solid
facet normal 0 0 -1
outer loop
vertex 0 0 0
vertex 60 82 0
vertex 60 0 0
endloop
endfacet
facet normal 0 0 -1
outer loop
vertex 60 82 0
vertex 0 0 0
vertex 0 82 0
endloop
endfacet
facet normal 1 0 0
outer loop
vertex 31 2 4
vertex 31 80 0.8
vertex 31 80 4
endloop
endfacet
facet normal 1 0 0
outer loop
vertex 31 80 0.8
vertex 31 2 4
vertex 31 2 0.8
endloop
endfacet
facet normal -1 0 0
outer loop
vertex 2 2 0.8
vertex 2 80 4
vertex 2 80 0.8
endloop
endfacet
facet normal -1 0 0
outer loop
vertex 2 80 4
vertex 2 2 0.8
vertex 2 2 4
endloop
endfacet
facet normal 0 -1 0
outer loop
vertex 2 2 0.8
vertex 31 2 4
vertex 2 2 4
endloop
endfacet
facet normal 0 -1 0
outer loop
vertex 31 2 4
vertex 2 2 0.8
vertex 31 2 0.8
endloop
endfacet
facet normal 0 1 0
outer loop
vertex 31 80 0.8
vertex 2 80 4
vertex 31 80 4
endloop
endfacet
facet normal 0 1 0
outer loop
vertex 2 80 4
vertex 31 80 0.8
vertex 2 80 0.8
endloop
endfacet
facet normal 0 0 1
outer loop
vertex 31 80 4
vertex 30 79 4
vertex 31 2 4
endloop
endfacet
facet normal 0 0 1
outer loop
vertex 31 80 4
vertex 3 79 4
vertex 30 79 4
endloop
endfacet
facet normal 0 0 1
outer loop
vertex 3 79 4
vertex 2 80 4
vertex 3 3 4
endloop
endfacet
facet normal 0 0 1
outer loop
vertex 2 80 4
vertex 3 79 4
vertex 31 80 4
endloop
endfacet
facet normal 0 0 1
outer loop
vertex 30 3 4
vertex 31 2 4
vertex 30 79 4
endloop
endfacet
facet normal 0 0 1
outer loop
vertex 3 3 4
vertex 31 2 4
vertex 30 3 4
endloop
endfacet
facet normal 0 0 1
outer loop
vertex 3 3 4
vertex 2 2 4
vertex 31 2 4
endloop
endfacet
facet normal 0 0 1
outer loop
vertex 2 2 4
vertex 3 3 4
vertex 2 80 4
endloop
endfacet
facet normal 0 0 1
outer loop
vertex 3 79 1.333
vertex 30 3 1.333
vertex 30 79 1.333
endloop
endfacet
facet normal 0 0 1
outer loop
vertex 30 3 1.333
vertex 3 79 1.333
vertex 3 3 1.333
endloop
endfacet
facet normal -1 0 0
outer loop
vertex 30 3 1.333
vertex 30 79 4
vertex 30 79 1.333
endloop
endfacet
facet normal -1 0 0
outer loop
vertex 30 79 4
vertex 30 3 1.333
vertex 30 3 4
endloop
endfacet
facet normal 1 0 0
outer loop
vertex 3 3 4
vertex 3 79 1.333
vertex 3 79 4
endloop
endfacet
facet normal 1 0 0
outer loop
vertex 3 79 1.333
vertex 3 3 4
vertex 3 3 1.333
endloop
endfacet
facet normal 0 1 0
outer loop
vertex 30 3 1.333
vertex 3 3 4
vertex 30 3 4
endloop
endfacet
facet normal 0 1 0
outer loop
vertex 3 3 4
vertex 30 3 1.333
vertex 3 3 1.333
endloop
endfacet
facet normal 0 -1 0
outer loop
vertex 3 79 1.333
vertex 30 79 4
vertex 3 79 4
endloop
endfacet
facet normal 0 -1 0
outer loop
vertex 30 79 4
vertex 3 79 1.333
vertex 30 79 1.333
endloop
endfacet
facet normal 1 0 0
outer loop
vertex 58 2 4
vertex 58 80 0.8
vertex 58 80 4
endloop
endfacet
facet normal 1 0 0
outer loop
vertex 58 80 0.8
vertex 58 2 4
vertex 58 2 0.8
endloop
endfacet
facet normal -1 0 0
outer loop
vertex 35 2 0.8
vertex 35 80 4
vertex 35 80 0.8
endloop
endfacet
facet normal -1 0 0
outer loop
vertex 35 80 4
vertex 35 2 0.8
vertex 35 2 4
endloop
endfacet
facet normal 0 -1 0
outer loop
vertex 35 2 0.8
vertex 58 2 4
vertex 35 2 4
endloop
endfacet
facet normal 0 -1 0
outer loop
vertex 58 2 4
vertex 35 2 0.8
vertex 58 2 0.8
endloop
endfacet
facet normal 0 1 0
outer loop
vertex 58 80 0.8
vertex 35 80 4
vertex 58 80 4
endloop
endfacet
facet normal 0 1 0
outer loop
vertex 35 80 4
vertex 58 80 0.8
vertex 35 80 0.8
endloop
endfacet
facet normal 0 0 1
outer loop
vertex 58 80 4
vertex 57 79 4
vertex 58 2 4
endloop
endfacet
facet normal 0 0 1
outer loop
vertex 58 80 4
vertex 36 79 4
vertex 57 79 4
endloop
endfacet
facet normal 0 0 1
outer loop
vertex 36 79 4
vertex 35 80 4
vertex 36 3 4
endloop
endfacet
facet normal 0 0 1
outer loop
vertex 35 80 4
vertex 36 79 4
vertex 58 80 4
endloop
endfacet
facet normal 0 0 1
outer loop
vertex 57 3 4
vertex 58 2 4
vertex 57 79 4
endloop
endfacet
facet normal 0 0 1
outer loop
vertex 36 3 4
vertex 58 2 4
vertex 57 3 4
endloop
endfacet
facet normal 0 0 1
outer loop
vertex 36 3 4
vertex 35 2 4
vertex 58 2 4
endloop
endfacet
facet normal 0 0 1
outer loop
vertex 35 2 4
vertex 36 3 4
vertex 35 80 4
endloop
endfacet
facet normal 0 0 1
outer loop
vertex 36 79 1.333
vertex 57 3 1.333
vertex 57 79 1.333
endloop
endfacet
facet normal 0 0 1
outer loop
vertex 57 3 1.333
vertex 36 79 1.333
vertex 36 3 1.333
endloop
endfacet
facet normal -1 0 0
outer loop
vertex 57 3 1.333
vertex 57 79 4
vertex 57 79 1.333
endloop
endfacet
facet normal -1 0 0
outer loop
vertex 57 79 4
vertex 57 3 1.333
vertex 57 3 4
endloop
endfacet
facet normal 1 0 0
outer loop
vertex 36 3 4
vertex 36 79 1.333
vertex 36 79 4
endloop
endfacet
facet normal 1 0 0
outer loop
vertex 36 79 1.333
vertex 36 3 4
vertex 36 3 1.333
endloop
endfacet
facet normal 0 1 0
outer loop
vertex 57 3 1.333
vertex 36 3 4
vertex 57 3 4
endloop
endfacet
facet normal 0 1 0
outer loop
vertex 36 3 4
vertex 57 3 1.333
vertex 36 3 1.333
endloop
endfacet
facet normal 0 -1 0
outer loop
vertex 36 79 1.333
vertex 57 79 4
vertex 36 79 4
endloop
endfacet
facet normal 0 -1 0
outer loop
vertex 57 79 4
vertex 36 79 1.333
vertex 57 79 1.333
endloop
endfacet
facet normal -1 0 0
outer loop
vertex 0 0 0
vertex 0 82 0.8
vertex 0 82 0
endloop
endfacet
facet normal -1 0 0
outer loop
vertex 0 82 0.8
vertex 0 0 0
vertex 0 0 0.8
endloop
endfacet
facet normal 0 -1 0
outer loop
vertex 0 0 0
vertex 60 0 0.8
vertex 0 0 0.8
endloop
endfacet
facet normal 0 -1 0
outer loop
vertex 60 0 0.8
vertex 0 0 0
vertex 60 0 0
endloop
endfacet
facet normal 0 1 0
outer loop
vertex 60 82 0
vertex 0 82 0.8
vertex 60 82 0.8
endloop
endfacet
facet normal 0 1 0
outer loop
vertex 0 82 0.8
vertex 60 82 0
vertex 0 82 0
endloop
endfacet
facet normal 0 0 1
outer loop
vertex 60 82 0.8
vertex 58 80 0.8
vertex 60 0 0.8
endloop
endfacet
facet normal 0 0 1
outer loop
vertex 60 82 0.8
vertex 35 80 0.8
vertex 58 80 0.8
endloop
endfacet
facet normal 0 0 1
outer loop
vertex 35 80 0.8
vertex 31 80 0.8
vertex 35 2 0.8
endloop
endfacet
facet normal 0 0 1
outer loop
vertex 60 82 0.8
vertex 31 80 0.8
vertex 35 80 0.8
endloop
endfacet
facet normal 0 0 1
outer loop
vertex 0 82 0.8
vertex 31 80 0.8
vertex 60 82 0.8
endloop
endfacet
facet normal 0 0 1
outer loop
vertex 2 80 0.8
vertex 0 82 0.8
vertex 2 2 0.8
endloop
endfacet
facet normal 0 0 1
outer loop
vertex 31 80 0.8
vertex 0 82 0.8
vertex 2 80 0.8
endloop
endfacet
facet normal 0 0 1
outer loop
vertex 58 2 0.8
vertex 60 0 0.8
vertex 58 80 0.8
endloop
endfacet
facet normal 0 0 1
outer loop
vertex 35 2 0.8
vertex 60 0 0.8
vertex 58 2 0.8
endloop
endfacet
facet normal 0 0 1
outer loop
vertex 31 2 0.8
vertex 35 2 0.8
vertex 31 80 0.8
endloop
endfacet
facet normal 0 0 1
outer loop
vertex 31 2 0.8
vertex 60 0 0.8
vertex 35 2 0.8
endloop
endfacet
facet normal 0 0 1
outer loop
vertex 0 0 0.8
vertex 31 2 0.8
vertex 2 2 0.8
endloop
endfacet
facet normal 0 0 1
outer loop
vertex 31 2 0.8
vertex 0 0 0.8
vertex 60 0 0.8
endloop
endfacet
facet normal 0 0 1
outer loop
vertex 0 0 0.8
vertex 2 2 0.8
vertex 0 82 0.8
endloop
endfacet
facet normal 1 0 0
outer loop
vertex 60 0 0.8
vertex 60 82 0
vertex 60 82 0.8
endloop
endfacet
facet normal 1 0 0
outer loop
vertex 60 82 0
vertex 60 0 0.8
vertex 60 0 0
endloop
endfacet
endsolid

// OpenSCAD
pcb_w = 27;
pcb_h = 76;
battery_w = 21;
battery_h = 76;
thick = 1;
thick2 = 2;
height = 2;
pad = 4;

render() union() {
color("red") linear_extrude(height=0.8*thick) square([pcb_w+pad+2*thick,pcb_h+pad+2*thick], center=false);
color("yellow") translate([pcb_w+pad+2*thick, 0]) linear_extrude(height=0.8*thick) square([battery_w+pad+2*thick,battery_h+pad+2*thick], center=false);

render() difference() {
color("magenta") translate([pad/2,pad/2,0]) linear_extrude(height=4*thick) square([pcb_w+2*thick,pcb_h+2*thick], center=false);
color("yellow") translate([(pad/2)+thick,(pad/2)+thick,height/1.5]) linear_extrude(height=4*thick) square([pcb_w,pcb_h], center=false);
}
render() difference() {
color("green") translate([pcb_w+pad+4*thick,pad/2,0]) linear_extrude(height=4*thick) square([battery_w+2*thick,battery_h+2*thick], center=false);
color("yellow") translate([pcb_w+pad+5*thick,pad/2+thick,height/1.5]) linear_extrude(height=4*thick) square([battery_w,battery_h], center=false);
}
}
